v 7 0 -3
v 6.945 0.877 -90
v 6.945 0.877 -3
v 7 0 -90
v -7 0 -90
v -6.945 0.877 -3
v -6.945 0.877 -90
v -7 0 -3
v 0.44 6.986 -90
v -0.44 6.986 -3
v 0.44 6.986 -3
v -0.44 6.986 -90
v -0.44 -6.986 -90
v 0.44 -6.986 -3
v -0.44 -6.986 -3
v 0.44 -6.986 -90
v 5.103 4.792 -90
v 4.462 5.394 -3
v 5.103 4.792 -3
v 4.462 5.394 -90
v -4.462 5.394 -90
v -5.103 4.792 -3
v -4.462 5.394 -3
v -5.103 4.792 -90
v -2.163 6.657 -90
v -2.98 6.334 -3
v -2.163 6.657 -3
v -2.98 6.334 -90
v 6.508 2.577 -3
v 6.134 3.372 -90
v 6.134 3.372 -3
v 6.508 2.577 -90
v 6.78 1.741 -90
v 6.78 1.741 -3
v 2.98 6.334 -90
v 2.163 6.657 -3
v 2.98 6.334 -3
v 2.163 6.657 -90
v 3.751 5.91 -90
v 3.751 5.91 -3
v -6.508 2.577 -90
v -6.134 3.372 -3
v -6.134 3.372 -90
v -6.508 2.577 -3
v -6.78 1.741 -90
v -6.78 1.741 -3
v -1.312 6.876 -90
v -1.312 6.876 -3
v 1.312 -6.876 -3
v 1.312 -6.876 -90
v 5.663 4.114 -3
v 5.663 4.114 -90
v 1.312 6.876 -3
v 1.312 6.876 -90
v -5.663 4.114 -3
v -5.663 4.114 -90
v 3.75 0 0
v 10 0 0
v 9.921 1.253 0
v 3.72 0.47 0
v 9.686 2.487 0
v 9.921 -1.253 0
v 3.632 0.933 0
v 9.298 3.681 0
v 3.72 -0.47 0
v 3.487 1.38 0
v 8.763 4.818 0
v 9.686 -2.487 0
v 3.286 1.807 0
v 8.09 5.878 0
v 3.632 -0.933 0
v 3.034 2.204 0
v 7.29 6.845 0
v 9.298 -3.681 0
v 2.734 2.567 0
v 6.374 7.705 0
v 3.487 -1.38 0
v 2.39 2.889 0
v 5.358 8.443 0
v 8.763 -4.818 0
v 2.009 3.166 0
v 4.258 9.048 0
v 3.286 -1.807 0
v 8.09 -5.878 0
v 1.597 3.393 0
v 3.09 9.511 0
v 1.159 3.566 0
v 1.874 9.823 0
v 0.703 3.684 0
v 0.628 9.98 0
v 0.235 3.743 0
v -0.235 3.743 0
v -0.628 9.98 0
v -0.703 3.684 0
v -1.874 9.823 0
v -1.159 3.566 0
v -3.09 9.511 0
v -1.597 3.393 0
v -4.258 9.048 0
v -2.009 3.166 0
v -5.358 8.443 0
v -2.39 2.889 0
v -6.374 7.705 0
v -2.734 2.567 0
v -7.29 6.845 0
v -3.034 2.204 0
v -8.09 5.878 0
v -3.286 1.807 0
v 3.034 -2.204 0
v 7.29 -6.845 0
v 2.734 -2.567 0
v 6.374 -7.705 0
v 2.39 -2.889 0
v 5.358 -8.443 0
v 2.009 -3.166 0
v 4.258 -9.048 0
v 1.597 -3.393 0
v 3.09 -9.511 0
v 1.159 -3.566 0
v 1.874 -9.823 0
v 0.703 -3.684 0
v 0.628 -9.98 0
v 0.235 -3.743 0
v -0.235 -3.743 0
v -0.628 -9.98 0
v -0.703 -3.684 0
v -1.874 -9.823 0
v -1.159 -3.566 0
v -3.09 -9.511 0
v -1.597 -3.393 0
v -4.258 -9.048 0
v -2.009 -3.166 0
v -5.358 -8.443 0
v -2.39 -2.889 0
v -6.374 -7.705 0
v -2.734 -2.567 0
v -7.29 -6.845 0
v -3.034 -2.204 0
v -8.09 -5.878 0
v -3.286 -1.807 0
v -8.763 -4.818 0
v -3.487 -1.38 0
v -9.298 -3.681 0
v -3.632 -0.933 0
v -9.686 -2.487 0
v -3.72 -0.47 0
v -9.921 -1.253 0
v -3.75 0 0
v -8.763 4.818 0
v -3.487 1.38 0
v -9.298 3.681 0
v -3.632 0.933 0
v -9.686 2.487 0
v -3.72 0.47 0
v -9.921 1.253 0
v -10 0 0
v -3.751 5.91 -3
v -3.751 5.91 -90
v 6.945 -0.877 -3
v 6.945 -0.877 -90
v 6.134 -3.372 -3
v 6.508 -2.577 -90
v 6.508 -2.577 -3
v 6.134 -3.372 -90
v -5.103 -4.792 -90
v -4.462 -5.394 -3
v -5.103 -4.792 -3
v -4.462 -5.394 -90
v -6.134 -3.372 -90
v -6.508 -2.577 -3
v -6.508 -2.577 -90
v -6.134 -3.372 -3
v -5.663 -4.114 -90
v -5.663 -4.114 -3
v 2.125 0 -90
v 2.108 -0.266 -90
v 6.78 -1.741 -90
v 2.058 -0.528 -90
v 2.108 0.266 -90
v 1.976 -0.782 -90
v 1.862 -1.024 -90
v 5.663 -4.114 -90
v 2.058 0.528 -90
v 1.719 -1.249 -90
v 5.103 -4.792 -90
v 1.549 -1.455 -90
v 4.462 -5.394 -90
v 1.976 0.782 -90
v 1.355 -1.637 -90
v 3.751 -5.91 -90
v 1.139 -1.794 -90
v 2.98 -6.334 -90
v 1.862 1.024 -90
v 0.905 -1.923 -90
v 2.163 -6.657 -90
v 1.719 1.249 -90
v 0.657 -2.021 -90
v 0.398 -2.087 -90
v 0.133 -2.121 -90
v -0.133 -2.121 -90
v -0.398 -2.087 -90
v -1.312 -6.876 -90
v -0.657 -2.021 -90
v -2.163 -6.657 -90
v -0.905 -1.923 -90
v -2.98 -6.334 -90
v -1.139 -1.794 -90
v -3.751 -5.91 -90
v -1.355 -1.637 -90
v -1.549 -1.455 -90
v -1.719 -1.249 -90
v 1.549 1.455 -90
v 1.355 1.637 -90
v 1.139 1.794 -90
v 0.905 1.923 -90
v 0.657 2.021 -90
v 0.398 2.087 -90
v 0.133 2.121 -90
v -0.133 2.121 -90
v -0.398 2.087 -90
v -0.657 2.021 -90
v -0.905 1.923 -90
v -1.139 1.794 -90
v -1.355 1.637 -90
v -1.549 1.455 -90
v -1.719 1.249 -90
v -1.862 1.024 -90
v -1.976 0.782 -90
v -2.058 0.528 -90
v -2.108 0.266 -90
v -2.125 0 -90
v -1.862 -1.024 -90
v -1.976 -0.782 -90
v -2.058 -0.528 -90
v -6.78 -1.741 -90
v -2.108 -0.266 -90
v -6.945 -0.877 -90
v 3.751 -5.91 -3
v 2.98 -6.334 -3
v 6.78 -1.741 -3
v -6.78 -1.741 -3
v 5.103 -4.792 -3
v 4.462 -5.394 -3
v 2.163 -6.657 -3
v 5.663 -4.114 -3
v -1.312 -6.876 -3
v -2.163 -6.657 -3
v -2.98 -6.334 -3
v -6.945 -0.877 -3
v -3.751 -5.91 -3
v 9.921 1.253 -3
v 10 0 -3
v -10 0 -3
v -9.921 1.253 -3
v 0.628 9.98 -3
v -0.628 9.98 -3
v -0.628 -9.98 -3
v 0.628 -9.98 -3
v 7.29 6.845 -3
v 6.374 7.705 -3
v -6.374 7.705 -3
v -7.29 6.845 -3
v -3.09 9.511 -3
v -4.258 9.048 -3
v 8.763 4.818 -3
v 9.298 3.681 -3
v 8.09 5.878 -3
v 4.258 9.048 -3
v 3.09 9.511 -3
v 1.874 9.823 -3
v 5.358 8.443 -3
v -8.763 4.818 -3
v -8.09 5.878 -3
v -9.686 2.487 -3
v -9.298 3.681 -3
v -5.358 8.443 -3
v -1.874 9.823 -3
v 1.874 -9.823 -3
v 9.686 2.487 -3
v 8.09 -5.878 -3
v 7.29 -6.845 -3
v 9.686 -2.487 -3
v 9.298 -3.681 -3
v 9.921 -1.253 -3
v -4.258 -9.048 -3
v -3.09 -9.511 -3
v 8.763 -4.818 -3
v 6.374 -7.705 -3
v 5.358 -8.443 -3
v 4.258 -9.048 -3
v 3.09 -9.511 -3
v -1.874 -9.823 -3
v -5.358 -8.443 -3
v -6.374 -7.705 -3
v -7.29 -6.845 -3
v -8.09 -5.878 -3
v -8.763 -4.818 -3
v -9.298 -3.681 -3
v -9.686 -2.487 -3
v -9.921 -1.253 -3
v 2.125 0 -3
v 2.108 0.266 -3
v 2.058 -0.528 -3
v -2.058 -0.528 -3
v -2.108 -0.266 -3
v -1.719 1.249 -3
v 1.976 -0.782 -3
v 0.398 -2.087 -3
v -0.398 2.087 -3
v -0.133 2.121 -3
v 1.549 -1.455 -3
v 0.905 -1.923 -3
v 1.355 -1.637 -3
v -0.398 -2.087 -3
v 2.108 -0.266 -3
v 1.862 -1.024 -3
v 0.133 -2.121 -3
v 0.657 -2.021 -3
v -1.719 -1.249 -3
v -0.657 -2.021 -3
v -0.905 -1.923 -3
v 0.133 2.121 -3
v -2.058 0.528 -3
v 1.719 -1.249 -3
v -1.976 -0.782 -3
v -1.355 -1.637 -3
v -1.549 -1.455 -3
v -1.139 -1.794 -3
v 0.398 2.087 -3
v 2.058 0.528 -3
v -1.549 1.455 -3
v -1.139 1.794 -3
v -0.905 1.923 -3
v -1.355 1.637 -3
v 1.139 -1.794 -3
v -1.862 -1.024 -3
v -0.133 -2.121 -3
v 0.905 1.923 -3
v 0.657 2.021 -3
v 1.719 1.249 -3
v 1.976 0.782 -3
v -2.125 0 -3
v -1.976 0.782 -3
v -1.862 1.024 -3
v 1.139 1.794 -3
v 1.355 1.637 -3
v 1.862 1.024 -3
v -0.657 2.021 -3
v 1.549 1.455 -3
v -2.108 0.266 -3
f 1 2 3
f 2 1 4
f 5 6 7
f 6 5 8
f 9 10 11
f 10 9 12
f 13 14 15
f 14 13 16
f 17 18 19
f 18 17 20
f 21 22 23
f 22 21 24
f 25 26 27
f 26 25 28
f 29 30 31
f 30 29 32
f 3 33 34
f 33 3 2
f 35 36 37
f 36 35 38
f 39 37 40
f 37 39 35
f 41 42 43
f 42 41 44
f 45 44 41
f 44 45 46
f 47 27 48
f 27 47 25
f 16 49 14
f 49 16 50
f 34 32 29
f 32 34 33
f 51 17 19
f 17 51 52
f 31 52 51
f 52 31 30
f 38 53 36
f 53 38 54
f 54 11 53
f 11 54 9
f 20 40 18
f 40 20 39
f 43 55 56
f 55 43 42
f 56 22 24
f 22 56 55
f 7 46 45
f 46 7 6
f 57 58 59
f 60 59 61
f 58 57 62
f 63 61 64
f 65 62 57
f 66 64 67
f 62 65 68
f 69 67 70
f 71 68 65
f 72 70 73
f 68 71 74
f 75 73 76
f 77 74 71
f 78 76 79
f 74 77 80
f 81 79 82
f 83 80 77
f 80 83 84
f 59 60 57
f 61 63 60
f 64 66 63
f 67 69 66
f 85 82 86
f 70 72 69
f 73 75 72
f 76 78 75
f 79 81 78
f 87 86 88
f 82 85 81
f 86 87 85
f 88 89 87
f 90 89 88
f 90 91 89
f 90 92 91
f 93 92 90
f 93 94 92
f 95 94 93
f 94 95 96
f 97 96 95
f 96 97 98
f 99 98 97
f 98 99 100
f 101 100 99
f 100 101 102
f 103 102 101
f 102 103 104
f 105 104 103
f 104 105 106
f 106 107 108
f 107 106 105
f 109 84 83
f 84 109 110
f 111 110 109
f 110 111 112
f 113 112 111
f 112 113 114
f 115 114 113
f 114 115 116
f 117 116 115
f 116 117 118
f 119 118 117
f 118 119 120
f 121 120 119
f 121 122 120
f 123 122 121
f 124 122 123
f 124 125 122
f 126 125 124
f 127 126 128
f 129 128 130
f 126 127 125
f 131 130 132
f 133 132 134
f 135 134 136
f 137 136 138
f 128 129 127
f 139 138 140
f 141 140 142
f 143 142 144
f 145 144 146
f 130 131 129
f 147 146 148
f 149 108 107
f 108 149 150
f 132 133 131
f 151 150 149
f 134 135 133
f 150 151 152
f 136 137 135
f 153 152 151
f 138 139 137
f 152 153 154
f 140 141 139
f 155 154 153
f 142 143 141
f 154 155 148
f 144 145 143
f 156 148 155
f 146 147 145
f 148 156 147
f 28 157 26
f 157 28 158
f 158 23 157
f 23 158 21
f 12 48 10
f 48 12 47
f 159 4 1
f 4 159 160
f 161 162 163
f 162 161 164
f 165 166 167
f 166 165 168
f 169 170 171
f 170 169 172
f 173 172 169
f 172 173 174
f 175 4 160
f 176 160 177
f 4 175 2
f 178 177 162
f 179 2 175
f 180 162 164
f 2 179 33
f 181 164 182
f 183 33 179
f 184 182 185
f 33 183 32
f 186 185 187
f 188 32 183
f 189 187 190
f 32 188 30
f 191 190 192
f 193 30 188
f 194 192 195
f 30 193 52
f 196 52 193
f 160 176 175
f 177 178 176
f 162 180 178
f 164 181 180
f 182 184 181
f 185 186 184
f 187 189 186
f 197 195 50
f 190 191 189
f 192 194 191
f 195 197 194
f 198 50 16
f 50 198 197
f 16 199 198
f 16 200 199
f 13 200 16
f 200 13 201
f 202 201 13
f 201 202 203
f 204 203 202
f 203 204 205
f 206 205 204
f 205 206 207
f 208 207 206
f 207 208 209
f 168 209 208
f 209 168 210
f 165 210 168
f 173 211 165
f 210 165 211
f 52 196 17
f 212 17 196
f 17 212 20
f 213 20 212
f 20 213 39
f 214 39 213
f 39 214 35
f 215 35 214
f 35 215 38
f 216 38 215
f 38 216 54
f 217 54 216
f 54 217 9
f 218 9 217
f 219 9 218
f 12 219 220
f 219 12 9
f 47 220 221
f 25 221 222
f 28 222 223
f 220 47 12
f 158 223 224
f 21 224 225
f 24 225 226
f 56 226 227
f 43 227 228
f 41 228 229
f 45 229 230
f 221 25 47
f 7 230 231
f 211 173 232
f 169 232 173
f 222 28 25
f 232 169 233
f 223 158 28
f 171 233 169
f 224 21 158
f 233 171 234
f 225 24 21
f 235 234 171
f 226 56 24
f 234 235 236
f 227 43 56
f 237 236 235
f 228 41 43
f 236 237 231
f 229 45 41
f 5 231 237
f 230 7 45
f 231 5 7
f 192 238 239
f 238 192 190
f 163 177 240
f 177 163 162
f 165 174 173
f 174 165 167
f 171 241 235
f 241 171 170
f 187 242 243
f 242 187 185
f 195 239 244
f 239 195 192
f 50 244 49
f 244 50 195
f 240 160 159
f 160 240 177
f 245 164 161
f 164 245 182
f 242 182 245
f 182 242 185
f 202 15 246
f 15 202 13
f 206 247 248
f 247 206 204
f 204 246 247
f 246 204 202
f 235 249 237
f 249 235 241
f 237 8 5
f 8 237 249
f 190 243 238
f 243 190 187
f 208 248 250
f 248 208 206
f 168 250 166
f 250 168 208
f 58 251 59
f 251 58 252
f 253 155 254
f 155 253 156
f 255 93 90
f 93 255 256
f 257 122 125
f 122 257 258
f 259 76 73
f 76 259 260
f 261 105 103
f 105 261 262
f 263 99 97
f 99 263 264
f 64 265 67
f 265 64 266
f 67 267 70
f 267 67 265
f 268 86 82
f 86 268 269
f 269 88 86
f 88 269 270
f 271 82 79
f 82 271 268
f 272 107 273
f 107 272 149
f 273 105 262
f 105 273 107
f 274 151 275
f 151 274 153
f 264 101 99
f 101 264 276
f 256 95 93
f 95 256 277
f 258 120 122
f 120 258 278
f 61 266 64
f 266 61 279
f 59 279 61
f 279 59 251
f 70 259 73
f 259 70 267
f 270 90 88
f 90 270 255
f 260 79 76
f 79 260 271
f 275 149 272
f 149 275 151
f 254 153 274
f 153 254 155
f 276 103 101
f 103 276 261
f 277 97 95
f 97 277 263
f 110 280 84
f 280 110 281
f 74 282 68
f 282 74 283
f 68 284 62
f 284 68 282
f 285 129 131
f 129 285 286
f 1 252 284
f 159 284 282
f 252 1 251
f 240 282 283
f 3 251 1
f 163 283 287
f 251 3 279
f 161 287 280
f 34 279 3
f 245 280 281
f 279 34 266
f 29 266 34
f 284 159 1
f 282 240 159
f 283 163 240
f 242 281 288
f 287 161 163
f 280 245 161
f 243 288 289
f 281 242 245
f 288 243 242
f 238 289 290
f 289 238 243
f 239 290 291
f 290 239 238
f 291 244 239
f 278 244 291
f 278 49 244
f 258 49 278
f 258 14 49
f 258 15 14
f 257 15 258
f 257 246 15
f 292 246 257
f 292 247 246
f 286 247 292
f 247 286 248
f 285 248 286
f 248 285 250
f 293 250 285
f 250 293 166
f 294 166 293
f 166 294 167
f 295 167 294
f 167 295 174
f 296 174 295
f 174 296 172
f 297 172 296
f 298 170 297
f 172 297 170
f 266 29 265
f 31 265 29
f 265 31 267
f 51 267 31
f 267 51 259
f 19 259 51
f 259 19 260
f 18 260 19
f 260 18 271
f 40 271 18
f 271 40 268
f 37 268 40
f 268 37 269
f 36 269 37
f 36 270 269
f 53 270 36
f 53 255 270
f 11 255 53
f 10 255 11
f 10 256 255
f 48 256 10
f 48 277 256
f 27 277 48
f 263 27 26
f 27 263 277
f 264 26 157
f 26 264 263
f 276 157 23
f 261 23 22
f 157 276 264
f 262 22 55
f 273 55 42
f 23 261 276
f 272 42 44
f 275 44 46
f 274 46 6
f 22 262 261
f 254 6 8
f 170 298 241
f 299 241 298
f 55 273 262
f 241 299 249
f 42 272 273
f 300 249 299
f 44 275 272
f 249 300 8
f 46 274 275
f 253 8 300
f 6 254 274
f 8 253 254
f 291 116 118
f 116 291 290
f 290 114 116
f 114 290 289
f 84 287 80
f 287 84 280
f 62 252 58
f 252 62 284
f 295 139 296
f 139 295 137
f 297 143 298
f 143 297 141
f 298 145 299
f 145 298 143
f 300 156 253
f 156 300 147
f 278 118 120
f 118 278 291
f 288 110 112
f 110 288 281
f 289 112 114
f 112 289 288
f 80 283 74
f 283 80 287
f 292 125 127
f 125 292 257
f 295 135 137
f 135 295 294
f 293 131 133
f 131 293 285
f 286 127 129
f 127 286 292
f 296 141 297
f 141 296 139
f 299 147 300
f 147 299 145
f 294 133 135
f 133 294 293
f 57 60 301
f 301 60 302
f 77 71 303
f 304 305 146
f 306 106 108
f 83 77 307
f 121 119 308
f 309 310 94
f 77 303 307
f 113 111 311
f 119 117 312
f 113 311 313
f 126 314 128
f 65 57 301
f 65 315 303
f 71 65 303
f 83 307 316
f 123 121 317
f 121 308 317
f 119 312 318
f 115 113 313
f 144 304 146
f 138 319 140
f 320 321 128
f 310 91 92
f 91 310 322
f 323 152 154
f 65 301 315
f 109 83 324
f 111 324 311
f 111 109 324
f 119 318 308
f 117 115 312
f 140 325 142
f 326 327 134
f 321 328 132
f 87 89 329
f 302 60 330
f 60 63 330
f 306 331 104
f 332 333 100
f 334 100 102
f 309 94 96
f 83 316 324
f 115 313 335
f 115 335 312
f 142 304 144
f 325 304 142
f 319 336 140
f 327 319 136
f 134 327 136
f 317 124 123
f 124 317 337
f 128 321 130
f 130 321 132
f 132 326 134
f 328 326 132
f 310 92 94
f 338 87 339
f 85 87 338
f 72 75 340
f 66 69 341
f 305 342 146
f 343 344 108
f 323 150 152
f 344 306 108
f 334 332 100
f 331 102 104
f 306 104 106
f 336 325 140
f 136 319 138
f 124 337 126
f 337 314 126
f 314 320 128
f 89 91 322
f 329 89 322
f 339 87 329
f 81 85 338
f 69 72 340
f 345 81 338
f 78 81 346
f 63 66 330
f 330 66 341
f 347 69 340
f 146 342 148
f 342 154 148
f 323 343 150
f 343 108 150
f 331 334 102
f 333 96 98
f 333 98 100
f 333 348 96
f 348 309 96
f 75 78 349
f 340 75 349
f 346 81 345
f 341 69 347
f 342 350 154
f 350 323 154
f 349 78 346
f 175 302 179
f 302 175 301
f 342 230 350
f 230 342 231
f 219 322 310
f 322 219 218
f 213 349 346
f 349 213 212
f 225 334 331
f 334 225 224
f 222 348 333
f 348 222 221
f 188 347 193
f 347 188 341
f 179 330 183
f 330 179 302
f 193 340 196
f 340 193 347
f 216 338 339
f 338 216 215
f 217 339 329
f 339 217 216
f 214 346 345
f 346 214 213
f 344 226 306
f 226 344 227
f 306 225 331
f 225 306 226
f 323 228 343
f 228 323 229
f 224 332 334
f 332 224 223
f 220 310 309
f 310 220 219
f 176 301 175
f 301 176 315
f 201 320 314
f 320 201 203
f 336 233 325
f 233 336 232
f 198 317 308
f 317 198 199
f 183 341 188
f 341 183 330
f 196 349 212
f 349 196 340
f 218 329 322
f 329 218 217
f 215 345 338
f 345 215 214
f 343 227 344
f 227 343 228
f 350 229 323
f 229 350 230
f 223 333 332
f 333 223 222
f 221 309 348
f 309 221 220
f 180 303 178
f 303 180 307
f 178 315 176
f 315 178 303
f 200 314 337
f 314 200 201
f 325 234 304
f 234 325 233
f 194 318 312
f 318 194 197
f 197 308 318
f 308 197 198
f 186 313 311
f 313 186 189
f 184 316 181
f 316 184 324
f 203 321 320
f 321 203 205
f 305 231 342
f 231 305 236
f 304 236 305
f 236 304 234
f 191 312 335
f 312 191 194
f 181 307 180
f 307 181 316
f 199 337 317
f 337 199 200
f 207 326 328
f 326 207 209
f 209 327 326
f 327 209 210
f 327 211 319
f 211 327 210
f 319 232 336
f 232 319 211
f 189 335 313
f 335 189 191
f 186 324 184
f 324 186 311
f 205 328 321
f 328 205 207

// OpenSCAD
$fn = 50;


difference() {
	union() {
		translate(v = [0, 0, -90.0000000000]) {
			cylinder(h = 90, r = 7.0000000000);
		}
		translate(v = [0, 0, -3.0000000000]) {
			cylinder(h = 3, r = 10.0000000000);
		}
	}
	union() {
		translate(v = [0, 0, 0]) {
			rotate(a = [0, 0, 0]) {
				difference() {
					union() {
						#translate(v = [0, 0, -90.0000000000]) {
							cylinder(h = 90, r = 2.0000000000);
						}
						#translate(v = [0, 0, -3]) {
							cylinder(h = 3, r1 = 2.1250000000, r2 = 3.7500000000);
						}
						#translate(v = [0, 0, -90.0000000000]) {
							cylinder(h = 90, r = 2.1250000000);
						}
						#translate(v = [0, 0, -90.0000000000]) {
							cylinder(h = 90, r = 2.0000000000);
						}
					}
					union();
				}
			}
		}
	}
}
